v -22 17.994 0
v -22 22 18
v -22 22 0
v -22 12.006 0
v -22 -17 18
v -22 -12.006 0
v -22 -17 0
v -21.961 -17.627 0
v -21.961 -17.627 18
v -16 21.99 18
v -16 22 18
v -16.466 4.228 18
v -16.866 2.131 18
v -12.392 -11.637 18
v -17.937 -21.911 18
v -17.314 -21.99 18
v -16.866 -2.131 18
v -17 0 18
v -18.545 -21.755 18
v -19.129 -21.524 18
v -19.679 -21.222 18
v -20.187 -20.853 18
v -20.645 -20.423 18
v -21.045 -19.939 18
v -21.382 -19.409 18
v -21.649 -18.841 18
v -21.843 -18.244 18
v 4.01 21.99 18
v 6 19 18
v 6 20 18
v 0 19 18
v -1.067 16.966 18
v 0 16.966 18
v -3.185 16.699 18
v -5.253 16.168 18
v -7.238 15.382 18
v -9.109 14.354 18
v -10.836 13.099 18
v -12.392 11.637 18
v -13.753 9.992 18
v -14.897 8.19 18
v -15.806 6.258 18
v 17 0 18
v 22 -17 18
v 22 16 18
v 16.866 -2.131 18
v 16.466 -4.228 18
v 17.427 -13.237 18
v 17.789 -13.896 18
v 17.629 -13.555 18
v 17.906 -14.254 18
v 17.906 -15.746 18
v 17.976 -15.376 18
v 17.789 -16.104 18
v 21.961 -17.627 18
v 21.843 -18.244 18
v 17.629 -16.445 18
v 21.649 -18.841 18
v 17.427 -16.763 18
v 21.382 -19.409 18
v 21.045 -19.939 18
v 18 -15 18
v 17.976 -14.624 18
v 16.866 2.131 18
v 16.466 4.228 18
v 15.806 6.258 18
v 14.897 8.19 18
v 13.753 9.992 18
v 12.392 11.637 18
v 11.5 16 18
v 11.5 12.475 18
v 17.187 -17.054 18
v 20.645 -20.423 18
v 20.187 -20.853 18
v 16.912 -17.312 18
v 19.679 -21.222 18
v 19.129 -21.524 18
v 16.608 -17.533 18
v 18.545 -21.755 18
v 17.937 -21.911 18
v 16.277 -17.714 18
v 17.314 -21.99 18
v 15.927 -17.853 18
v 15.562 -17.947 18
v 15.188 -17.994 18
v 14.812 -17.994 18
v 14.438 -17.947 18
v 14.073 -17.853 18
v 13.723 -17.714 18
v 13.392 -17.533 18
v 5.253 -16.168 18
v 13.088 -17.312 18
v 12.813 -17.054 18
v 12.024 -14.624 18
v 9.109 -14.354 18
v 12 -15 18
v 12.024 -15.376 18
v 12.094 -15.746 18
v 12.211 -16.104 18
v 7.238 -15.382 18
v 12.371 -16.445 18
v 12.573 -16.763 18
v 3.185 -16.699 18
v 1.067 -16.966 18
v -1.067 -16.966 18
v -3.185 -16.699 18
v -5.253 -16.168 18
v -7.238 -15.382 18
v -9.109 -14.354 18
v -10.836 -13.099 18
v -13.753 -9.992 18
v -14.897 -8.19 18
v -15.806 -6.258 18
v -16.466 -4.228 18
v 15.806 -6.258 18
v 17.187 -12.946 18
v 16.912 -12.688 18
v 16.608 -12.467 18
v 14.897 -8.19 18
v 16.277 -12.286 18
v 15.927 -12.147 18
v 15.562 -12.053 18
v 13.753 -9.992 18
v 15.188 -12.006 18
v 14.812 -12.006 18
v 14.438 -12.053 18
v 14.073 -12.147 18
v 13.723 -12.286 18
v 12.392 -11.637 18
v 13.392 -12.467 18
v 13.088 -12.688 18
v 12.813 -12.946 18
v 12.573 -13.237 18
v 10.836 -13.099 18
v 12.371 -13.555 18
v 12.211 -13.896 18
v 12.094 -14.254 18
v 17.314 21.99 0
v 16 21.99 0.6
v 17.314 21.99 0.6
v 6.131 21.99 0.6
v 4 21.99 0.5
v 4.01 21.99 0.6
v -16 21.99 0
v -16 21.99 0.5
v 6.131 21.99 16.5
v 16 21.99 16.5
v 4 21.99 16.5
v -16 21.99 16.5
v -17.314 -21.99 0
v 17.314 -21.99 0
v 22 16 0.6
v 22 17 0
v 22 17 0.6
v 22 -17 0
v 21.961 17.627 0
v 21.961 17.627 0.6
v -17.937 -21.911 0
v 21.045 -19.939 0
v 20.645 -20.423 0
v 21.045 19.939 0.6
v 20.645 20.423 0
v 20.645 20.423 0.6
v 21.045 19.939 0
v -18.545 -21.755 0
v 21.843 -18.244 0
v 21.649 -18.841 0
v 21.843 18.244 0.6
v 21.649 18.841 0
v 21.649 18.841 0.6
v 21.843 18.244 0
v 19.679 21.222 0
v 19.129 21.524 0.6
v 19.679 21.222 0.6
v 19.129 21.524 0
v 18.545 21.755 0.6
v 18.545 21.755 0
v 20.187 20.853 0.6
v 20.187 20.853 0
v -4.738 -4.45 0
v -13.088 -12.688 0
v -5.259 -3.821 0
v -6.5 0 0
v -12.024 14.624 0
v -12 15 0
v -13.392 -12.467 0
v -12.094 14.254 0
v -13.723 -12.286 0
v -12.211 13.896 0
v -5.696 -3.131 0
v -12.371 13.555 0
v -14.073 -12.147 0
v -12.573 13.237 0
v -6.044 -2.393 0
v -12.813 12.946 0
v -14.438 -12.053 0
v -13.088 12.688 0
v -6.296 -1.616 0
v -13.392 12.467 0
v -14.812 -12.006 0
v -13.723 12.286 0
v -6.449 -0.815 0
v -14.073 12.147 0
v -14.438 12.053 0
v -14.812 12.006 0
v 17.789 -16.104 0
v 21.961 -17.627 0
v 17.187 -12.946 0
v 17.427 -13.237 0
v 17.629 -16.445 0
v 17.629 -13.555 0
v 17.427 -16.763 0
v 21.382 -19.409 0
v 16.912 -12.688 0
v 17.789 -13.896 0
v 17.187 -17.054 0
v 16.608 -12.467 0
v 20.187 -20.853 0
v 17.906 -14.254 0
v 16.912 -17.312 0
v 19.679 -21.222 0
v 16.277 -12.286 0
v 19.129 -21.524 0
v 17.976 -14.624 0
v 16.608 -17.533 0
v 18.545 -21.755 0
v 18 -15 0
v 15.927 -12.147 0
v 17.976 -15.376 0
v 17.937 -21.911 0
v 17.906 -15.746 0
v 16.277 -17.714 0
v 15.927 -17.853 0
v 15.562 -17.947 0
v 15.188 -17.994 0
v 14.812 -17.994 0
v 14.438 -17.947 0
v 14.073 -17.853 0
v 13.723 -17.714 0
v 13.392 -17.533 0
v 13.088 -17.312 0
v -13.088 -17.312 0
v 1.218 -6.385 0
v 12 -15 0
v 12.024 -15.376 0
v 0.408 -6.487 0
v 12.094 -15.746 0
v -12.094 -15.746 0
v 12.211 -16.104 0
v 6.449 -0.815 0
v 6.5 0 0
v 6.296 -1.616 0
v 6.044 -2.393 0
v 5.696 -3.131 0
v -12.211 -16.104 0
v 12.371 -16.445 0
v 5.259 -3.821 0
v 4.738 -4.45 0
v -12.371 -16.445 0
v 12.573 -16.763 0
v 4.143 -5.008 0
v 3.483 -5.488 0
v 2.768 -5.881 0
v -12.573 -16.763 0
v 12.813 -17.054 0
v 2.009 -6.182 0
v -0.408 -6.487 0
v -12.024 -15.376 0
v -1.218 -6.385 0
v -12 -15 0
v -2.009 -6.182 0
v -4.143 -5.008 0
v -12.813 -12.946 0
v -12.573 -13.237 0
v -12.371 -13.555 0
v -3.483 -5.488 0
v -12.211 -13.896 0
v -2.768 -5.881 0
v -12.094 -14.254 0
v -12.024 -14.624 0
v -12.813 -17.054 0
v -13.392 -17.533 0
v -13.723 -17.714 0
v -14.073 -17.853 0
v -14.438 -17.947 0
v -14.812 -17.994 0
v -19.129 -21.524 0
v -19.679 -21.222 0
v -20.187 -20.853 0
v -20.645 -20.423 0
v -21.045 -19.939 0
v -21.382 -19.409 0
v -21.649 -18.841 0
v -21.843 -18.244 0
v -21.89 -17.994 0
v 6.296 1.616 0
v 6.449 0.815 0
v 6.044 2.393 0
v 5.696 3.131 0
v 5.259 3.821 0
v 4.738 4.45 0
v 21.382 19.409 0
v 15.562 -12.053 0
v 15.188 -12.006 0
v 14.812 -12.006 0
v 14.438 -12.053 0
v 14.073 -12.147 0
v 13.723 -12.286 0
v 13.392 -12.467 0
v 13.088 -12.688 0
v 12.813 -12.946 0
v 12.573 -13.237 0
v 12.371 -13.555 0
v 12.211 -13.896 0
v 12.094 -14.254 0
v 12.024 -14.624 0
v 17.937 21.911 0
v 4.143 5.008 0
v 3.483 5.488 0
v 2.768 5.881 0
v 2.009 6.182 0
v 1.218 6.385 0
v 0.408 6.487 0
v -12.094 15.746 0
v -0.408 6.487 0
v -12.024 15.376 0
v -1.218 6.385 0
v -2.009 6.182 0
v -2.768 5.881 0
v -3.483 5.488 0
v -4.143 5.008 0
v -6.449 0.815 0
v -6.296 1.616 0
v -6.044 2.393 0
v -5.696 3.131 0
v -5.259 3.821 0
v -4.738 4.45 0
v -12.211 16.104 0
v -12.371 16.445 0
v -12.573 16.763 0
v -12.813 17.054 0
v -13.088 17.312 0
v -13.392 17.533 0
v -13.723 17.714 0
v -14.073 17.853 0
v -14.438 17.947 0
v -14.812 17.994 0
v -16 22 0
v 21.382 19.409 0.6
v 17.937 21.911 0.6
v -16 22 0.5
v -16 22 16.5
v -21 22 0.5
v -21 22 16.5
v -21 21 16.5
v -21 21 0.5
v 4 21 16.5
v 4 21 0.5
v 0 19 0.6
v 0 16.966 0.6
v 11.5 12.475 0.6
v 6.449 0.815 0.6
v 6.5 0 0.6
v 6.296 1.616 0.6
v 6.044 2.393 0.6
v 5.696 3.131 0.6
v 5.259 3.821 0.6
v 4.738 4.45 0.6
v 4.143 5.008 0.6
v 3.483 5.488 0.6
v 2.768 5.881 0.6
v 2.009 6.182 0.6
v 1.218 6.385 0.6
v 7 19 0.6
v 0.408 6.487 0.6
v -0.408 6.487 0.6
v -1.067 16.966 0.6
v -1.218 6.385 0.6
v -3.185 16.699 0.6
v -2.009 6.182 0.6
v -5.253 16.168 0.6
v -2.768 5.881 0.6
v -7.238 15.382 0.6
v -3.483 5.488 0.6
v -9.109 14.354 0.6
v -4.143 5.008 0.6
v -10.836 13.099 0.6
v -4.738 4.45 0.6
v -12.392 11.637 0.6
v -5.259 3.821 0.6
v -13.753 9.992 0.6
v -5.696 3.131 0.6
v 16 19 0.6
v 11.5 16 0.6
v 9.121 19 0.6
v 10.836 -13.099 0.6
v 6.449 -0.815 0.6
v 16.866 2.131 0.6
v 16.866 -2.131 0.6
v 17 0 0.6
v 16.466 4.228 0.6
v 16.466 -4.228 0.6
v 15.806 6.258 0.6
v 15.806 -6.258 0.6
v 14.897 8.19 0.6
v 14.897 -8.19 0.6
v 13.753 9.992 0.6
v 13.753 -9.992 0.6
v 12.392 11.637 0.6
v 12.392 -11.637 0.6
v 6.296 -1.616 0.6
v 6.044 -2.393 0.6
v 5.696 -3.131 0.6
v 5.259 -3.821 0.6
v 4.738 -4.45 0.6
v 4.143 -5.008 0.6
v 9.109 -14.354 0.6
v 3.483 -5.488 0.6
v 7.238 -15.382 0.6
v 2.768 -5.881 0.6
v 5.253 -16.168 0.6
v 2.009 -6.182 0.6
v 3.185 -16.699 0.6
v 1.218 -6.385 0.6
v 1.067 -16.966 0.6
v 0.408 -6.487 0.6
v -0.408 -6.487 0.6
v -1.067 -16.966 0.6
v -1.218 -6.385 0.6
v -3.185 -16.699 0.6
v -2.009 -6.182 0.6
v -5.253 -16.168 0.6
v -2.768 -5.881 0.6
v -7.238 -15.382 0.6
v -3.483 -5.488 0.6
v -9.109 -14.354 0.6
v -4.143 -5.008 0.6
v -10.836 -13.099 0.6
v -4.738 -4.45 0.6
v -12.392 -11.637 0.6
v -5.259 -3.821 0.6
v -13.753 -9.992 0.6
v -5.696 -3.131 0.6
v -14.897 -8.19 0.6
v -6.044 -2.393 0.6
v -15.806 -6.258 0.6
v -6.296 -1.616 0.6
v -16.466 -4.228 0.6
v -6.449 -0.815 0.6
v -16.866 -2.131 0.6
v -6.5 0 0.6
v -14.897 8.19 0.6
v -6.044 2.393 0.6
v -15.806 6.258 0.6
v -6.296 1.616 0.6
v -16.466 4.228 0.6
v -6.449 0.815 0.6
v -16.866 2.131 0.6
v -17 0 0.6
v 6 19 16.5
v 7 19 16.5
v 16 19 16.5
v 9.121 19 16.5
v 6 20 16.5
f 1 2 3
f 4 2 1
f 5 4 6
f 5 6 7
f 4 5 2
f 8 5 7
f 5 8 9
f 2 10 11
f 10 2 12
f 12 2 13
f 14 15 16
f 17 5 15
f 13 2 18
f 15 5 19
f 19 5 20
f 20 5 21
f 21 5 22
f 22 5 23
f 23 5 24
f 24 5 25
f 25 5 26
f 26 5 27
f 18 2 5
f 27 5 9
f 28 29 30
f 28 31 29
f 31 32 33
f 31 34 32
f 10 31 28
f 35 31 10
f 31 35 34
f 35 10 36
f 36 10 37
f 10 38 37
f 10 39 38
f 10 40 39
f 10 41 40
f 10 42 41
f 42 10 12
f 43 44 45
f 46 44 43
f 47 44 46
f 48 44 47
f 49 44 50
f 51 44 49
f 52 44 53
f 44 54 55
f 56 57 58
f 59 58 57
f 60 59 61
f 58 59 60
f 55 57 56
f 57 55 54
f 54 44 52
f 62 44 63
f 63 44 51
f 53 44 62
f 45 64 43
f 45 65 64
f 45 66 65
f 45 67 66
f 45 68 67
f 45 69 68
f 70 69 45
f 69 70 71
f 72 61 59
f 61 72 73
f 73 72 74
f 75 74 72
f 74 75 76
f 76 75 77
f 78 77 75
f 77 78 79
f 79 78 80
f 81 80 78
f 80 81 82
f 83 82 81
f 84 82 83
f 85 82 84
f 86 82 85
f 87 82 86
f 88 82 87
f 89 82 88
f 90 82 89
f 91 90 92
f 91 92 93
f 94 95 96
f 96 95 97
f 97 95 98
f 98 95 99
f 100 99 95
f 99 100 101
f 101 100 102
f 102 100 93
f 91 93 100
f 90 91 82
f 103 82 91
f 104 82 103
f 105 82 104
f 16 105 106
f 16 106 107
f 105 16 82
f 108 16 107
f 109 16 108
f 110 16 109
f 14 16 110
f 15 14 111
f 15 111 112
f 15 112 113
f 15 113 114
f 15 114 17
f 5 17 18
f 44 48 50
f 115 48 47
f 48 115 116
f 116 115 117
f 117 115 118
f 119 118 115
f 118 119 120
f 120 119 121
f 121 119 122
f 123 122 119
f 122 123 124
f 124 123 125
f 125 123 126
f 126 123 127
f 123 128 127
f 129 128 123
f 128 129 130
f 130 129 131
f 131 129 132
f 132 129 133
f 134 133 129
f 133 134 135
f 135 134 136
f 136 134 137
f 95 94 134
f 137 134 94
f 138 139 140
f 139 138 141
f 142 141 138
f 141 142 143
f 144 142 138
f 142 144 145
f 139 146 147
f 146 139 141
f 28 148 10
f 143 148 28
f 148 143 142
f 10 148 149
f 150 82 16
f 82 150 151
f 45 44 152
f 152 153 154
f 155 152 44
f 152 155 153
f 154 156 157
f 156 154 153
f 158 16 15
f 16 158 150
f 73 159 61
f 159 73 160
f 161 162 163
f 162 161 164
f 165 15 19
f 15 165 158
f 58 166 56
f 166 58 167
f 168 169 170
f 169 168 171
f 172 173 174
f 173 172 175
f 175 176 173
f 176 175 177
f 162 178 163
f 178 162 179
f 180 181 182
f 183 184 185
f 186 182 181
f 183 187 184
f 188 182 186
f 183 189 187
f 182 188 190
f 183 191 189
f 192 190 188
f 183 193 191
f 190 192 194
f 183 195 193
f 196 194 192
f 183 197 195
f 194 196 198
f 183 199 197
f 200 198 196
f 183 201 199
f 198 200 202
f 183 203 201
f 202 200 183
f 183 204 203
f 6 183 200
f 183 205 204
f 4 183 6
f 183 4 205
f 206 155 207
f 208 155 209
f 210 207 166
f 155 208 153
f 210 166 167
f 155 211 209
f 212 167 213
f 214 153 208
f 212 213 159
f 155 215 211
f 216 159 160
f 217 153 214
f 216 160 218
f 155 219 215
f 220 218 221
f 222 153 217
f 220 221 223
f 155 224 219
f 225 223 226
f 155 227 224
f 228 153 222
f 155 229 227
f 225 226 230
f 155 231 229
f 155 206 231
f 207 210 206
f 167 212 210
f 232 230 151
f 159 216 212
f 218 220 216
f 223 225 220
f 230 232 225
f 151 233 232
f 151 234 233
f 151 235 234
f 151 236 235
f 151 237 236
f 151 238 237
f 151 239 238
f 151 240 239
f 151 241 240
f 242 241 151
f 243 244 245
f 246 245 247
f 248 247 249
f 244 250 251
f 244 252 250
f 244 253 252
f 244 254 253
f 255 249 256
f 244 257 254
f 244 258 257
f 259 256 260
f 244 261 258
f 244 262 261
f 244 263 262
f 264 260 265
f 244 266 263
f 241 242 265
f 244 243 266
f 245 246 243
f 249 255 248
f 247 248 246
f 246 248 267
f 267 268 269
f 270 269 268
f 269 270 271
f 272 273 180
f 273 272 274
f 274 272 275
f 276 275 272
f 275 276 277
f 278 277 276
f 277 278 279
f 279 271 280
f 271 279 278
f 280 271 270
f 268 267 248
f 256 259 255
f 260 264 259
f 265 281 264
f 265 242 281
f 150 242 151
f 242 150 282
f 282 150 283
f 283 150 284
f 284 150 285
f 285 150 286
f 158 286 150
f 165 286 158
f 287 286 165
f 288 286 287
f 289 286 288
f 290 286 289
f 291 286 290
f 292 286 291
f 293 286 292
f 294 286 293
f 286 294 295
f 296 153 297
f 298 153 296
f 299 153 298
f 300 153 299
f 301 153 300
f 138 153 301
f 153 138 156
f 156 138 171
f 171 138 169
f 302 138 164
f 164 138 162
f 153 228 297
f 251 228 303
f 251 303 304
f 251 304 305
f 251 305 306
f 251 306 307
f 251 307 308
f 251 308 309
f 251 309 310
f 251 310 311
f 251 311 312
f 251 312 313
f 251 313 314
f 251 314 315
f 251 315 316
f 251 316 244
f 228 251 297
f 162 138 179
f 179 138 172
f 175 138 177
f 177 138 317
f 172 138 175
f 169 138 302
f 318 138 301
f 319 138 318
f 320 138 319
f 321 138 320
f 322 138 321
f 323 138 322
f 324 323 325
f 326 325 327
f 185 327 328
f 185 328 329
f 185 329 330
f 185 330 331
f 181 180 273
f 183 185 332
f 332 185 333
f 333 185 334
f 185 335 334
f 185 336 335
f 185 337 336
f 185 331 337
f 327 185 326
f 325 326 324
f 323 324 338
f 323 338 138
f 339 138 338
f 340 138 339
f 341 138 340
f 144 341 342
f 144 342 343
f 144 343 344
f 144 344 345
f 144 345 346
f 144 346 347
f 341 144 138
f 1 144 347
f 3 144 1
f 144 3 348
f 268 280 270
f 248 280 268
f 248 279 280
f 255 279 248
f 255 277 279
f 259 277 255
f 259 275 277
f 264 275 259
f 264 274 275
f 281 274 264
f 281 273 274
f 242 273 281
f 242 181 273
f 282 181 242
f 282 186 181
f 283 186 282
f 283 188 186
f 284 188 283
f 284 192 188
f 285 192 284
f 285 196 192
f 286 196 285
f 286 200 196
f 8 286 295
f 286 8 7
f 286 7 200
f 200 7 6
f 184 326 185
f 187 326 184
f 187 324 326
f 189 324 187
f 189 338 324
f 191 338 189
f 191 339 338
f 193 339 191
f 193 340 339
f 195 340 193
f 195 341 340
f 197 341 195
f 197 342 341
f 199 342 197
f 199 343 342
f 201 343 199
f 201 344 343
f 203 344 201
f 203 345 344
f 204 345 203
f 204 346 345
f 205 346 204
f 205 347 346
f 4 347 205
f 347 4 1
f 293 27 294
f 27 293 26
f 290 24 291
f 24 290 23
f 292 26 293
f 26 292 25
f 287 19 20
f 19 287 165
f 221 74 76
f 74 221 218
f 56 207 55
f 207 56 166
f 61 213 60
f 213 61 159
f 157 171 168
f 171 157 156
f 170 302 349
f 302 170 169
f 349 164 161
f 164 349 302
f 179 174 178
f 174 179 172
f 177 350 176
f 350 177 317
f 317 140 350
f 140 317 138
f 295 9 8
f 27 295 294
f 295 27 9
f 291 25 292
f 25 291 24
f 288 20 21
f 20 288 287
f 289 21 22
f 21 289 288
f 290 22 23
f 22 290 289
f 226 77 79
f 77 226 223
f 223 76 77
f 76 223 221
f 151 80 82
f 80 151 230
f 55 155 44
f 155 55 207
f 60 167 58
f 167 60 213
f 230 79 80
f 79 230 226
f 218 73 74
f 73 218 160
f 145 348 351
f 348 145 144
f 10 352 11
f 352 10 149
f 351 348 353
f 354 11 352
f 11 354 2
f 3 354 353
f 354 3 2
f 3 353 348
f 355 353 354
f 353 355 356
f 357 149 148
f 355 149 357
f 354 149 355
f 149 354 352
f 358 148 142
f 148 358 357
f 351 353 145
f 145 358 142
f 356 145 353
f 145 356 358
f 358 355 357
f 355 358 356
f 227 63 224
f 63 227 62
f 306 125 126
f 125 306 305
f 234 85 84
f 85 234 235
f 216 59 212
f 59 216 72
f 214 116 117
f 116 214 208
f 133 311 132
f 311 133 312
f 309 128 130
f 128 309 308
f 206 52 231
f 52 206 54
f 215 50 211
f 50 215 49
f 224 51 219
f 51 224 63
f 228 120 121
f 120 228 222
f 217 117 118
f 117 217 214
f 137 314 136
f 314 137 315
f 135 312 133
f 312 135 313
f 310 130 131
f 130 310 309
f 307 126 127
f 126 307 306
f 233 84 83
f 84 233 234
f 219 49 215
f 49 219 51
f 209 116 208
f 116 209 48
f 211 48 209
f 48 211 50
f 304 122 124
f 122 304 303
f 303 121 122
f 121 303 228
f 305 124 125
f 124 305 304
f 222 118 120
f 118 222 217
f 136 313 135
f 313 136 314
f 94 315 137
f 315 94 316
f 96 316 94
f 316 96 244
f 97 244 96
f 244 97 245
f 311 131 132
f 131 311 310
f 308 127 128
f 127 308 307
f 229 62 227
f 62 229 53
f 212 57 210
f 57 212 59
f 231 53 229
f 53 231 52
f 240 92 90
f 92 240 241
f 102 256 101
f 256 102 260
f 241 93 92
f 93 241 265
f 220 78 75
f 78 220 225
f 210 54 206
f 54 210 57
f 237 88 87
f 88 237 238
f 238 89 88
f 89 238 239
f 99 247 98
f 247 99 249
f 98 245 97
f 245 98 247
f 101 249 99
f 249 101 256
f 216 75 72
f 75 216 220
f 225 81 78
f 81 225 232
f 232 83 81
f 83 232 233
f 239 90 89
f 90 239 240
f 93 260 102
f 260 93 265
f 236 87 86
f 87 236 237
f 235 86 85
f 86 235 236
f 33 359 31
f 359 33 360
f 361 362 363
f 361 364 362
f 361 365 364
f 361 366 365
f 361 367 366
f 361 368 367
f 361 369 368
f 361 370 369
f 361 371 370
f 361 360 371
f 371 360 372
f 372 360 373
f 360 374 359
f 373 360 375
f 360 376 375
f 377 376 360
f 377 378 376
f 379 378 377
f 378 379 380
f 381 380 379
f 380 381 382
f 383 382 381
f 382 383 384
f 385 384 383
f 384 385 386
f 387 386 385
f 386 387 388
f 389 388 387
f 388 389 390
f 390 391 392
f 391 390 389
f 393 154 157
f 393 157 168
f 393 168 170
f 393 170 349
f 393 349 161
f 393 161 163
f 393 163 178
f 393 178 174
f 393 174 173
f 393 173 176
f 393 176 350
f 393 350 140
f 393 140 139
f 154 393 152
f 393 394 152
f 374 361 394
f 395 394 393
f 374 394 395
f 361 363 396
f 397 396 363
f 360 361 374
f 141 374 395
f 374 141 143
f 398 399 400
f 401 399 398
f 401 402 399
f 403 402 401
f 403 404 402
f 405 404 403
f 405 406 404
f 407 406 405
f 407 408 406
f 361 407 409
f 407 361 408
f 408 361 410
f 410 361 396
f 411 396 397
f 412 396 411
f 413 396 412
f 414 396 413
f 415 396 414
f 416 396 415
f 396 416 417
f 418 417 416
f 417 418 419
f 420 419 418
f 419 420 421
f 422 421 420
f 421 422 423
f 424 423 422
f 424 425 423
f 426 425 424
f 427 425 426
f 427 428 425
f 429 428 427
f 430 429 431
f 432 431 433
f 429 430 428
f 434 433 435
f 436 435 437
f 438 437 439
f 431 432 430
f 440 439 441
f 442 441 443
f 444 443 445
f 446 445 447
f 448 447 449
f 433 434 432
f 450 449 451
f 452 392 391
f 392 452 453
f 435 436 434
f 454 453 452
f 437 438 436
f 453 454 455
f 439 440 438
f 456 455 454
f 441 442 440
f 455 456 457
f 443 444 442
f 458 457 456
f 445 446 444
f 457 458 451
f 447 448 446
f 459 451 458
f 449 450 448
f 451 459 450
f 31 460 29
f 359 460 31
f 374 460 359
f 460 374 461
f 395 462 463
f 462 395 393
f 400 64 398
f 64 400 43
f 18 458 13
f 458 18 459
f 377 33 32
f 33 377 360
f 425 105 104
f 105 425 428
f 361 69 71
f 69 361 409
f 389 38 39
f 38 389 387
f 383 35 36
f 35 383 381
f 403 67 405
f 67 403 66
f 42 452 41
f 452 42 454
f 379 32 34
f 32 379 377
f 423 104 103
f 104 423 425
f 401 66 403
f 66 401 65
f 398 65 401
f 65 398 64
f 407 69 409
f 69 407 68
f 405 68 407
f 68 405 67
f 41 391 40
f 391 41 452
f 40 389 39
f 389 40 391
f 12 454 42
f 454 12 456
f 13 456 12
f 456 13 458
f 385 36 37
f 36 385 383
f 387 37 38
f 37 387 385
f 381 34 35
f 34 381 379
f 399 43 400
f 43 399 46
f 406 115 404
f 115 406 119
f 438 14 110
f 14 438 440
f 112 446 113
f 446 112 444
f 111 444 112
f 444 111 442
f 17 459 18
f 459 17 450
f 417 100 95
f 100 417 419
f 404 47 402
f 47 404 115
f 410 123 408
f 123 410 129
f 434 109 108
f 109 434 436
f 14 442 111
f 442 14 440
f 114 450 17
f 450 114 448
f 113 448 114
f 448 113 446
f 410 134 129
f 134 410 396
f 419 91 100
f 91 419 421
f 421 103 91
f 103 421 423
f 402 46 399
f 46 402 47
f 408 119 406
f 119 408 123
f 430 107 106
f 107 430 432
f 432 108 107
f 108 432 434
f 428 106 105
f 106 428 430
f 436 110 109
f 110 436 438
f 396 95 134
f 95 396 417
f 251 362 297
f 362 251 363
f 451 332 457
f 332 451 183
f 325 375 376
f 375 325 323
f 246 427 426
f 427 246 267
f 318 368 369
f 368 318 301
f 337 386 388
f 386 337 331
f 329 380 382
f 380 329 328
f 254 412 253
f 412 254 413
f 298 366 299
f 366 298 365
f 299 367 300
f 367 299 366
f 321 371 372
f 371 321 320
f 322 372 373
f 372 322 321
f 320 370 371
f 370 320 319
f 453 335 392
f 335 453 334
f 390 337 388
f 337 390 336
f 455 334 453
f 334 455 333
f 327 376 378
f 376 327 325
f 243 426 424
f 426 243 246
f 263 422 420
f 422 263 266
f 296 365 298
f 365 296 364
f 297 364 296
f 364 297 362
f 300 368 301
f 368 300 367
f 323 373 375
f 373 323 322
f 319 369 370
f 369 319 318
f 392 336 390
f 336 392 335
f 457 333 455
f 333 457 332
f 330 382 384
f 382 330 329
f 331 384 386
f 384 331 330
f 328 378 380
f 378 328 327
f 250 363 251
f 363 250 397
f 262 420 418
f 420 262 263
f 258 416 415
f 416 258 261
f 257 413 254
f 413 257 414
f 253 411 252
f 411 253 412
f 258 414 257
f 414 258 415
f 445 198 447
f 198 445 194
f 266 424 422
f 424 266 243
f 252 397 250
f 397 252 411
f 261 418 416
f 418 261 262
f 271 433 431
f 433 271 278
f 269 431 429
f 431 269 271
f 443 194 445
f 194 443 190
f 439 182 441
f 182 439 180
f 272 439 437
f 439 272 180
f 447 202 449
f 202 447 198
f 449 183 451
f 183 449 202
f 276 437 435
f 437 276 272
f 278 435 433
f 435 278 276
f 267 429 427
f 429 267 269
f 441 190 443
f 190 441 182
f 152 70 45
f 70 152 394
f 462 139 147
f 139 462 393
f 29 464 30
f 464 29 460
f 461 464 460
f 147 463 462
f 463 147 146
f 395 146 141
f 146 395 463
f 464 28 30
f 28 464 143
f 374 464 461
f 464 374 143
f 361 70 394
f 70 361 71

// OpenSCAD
$fn = 50;


difference() {
	union() {
		hull() {
			translate(v = [-17.0000000000, 17.0000000000, 0]) {
				cylinder(h = 18, r = 5);
			}
			translate(v = [17.0000000000, 17.0000000000, 0]) {
				cylinder(h = 18, r = 5);
			}
			translate(v = [-17.0000000000, -17.0000000000, 0]) {
				cylinder(h = 18, r = 5);
			}
			translate(v = [17.0000000000, -17.0000000000, 0]) {
				cylinder(h = 18, r = 5);
			}
		}
		translate(v = [-22.0000000000, 16.0000000000, 0]) {
			cube(size = [6, 6, 18]);
		}
	}
	union() {
		translate(v = [-22.5000000000, -15.0000000000, -250.0000000000]) {
			rotate(a = [0, 0, 0]) {
				difference() {
					union() {
						hull() {
							translate(v = [7.5000000000, 0, 0]) {
								cylinder(h = 250, r = 3.0000000000, r1 = 3.0000000000, r2 = 3.0000000000);
							}
							translate(v = [-7.5000000000, 0, 0]) {
								cylinder(h = 250, r = 3.0000000000, r1 = 3.0000000000, r2 = 3.0000000000);
							}
						}
					}
					union();
				}
			}
		}
		translate(v = [-22.5000000000, 15.0000000000, -250.0000000000]) {
			rotate(a = [0, 0, 0]) {
				difference() {
					union() {
						hull() {
							translate(v = [7.5000000000, 0, 0]) {
								cylinder(h = 250, r = 3.0000000000, r1 = 3.0000000000, r2 = 3.0000000000);
							}
							translate(v = [-7.5000000000, 0, 0]) {
								cylinder(h = 250, r = 3.0000000000, r1 = 3.0000000000, r2 = 3.0000000000);
							}
						}
					}
					union();
				}
			}
		}
		translate(v = [-21.0000000000, 21.0000000000, 0.5000000000]) {
			cube(size = [25, 1, 16]);
		}
		translate(v = [15.0000000000, -15.0000000000, -50.0000000000]) {
			cylinder(h = 100, r = 3.0000000000);
		}
		translate(v = [0.0000000000, 11.0000000000, 0.6000000000]) {
			cube(size = [11, 8, 20.4000000000]);
		}
		translate(v = [0, 0, 0.6000000000]) {
			cylinder(h = 20.4000000000, r = 17.0000000000);
		}
		translate(v = [0, 0, -9.0000000000]) {
			cylinder(h = 18, r = 6.5000000000);
		}
		translate(v = [0.0000000000, 16.0000000000, 0.6000000000]) {
			cube(size = [22.0000000000, 3, 20.4000000000]);
		}
		translate(v = [16.0000000000, 16.0000000000, 0.6000000000]) {
			cube(size = [6, 6, 20.4000000000]);
		}
		translate(v = [6.0000000000, 16.0000000000, 16.5000000000]) {
			cube(size = [16, 6, 1.5000000000]);
		}
		translate(v = [3.2500000000, 22.7500000000, 0.6000000000]) {
			rotate(a = [0, 0, -45]) {
				cube(size = [7.5000000000, 1.5000000000, 20.4000000000]);
			}
		}
		translate(v = [2.5000000000, 11.0000000000, 0.6000000000]) {
			cube(size = [9.0000000000, 5, 17.4000000000]);
		}
	}
}
